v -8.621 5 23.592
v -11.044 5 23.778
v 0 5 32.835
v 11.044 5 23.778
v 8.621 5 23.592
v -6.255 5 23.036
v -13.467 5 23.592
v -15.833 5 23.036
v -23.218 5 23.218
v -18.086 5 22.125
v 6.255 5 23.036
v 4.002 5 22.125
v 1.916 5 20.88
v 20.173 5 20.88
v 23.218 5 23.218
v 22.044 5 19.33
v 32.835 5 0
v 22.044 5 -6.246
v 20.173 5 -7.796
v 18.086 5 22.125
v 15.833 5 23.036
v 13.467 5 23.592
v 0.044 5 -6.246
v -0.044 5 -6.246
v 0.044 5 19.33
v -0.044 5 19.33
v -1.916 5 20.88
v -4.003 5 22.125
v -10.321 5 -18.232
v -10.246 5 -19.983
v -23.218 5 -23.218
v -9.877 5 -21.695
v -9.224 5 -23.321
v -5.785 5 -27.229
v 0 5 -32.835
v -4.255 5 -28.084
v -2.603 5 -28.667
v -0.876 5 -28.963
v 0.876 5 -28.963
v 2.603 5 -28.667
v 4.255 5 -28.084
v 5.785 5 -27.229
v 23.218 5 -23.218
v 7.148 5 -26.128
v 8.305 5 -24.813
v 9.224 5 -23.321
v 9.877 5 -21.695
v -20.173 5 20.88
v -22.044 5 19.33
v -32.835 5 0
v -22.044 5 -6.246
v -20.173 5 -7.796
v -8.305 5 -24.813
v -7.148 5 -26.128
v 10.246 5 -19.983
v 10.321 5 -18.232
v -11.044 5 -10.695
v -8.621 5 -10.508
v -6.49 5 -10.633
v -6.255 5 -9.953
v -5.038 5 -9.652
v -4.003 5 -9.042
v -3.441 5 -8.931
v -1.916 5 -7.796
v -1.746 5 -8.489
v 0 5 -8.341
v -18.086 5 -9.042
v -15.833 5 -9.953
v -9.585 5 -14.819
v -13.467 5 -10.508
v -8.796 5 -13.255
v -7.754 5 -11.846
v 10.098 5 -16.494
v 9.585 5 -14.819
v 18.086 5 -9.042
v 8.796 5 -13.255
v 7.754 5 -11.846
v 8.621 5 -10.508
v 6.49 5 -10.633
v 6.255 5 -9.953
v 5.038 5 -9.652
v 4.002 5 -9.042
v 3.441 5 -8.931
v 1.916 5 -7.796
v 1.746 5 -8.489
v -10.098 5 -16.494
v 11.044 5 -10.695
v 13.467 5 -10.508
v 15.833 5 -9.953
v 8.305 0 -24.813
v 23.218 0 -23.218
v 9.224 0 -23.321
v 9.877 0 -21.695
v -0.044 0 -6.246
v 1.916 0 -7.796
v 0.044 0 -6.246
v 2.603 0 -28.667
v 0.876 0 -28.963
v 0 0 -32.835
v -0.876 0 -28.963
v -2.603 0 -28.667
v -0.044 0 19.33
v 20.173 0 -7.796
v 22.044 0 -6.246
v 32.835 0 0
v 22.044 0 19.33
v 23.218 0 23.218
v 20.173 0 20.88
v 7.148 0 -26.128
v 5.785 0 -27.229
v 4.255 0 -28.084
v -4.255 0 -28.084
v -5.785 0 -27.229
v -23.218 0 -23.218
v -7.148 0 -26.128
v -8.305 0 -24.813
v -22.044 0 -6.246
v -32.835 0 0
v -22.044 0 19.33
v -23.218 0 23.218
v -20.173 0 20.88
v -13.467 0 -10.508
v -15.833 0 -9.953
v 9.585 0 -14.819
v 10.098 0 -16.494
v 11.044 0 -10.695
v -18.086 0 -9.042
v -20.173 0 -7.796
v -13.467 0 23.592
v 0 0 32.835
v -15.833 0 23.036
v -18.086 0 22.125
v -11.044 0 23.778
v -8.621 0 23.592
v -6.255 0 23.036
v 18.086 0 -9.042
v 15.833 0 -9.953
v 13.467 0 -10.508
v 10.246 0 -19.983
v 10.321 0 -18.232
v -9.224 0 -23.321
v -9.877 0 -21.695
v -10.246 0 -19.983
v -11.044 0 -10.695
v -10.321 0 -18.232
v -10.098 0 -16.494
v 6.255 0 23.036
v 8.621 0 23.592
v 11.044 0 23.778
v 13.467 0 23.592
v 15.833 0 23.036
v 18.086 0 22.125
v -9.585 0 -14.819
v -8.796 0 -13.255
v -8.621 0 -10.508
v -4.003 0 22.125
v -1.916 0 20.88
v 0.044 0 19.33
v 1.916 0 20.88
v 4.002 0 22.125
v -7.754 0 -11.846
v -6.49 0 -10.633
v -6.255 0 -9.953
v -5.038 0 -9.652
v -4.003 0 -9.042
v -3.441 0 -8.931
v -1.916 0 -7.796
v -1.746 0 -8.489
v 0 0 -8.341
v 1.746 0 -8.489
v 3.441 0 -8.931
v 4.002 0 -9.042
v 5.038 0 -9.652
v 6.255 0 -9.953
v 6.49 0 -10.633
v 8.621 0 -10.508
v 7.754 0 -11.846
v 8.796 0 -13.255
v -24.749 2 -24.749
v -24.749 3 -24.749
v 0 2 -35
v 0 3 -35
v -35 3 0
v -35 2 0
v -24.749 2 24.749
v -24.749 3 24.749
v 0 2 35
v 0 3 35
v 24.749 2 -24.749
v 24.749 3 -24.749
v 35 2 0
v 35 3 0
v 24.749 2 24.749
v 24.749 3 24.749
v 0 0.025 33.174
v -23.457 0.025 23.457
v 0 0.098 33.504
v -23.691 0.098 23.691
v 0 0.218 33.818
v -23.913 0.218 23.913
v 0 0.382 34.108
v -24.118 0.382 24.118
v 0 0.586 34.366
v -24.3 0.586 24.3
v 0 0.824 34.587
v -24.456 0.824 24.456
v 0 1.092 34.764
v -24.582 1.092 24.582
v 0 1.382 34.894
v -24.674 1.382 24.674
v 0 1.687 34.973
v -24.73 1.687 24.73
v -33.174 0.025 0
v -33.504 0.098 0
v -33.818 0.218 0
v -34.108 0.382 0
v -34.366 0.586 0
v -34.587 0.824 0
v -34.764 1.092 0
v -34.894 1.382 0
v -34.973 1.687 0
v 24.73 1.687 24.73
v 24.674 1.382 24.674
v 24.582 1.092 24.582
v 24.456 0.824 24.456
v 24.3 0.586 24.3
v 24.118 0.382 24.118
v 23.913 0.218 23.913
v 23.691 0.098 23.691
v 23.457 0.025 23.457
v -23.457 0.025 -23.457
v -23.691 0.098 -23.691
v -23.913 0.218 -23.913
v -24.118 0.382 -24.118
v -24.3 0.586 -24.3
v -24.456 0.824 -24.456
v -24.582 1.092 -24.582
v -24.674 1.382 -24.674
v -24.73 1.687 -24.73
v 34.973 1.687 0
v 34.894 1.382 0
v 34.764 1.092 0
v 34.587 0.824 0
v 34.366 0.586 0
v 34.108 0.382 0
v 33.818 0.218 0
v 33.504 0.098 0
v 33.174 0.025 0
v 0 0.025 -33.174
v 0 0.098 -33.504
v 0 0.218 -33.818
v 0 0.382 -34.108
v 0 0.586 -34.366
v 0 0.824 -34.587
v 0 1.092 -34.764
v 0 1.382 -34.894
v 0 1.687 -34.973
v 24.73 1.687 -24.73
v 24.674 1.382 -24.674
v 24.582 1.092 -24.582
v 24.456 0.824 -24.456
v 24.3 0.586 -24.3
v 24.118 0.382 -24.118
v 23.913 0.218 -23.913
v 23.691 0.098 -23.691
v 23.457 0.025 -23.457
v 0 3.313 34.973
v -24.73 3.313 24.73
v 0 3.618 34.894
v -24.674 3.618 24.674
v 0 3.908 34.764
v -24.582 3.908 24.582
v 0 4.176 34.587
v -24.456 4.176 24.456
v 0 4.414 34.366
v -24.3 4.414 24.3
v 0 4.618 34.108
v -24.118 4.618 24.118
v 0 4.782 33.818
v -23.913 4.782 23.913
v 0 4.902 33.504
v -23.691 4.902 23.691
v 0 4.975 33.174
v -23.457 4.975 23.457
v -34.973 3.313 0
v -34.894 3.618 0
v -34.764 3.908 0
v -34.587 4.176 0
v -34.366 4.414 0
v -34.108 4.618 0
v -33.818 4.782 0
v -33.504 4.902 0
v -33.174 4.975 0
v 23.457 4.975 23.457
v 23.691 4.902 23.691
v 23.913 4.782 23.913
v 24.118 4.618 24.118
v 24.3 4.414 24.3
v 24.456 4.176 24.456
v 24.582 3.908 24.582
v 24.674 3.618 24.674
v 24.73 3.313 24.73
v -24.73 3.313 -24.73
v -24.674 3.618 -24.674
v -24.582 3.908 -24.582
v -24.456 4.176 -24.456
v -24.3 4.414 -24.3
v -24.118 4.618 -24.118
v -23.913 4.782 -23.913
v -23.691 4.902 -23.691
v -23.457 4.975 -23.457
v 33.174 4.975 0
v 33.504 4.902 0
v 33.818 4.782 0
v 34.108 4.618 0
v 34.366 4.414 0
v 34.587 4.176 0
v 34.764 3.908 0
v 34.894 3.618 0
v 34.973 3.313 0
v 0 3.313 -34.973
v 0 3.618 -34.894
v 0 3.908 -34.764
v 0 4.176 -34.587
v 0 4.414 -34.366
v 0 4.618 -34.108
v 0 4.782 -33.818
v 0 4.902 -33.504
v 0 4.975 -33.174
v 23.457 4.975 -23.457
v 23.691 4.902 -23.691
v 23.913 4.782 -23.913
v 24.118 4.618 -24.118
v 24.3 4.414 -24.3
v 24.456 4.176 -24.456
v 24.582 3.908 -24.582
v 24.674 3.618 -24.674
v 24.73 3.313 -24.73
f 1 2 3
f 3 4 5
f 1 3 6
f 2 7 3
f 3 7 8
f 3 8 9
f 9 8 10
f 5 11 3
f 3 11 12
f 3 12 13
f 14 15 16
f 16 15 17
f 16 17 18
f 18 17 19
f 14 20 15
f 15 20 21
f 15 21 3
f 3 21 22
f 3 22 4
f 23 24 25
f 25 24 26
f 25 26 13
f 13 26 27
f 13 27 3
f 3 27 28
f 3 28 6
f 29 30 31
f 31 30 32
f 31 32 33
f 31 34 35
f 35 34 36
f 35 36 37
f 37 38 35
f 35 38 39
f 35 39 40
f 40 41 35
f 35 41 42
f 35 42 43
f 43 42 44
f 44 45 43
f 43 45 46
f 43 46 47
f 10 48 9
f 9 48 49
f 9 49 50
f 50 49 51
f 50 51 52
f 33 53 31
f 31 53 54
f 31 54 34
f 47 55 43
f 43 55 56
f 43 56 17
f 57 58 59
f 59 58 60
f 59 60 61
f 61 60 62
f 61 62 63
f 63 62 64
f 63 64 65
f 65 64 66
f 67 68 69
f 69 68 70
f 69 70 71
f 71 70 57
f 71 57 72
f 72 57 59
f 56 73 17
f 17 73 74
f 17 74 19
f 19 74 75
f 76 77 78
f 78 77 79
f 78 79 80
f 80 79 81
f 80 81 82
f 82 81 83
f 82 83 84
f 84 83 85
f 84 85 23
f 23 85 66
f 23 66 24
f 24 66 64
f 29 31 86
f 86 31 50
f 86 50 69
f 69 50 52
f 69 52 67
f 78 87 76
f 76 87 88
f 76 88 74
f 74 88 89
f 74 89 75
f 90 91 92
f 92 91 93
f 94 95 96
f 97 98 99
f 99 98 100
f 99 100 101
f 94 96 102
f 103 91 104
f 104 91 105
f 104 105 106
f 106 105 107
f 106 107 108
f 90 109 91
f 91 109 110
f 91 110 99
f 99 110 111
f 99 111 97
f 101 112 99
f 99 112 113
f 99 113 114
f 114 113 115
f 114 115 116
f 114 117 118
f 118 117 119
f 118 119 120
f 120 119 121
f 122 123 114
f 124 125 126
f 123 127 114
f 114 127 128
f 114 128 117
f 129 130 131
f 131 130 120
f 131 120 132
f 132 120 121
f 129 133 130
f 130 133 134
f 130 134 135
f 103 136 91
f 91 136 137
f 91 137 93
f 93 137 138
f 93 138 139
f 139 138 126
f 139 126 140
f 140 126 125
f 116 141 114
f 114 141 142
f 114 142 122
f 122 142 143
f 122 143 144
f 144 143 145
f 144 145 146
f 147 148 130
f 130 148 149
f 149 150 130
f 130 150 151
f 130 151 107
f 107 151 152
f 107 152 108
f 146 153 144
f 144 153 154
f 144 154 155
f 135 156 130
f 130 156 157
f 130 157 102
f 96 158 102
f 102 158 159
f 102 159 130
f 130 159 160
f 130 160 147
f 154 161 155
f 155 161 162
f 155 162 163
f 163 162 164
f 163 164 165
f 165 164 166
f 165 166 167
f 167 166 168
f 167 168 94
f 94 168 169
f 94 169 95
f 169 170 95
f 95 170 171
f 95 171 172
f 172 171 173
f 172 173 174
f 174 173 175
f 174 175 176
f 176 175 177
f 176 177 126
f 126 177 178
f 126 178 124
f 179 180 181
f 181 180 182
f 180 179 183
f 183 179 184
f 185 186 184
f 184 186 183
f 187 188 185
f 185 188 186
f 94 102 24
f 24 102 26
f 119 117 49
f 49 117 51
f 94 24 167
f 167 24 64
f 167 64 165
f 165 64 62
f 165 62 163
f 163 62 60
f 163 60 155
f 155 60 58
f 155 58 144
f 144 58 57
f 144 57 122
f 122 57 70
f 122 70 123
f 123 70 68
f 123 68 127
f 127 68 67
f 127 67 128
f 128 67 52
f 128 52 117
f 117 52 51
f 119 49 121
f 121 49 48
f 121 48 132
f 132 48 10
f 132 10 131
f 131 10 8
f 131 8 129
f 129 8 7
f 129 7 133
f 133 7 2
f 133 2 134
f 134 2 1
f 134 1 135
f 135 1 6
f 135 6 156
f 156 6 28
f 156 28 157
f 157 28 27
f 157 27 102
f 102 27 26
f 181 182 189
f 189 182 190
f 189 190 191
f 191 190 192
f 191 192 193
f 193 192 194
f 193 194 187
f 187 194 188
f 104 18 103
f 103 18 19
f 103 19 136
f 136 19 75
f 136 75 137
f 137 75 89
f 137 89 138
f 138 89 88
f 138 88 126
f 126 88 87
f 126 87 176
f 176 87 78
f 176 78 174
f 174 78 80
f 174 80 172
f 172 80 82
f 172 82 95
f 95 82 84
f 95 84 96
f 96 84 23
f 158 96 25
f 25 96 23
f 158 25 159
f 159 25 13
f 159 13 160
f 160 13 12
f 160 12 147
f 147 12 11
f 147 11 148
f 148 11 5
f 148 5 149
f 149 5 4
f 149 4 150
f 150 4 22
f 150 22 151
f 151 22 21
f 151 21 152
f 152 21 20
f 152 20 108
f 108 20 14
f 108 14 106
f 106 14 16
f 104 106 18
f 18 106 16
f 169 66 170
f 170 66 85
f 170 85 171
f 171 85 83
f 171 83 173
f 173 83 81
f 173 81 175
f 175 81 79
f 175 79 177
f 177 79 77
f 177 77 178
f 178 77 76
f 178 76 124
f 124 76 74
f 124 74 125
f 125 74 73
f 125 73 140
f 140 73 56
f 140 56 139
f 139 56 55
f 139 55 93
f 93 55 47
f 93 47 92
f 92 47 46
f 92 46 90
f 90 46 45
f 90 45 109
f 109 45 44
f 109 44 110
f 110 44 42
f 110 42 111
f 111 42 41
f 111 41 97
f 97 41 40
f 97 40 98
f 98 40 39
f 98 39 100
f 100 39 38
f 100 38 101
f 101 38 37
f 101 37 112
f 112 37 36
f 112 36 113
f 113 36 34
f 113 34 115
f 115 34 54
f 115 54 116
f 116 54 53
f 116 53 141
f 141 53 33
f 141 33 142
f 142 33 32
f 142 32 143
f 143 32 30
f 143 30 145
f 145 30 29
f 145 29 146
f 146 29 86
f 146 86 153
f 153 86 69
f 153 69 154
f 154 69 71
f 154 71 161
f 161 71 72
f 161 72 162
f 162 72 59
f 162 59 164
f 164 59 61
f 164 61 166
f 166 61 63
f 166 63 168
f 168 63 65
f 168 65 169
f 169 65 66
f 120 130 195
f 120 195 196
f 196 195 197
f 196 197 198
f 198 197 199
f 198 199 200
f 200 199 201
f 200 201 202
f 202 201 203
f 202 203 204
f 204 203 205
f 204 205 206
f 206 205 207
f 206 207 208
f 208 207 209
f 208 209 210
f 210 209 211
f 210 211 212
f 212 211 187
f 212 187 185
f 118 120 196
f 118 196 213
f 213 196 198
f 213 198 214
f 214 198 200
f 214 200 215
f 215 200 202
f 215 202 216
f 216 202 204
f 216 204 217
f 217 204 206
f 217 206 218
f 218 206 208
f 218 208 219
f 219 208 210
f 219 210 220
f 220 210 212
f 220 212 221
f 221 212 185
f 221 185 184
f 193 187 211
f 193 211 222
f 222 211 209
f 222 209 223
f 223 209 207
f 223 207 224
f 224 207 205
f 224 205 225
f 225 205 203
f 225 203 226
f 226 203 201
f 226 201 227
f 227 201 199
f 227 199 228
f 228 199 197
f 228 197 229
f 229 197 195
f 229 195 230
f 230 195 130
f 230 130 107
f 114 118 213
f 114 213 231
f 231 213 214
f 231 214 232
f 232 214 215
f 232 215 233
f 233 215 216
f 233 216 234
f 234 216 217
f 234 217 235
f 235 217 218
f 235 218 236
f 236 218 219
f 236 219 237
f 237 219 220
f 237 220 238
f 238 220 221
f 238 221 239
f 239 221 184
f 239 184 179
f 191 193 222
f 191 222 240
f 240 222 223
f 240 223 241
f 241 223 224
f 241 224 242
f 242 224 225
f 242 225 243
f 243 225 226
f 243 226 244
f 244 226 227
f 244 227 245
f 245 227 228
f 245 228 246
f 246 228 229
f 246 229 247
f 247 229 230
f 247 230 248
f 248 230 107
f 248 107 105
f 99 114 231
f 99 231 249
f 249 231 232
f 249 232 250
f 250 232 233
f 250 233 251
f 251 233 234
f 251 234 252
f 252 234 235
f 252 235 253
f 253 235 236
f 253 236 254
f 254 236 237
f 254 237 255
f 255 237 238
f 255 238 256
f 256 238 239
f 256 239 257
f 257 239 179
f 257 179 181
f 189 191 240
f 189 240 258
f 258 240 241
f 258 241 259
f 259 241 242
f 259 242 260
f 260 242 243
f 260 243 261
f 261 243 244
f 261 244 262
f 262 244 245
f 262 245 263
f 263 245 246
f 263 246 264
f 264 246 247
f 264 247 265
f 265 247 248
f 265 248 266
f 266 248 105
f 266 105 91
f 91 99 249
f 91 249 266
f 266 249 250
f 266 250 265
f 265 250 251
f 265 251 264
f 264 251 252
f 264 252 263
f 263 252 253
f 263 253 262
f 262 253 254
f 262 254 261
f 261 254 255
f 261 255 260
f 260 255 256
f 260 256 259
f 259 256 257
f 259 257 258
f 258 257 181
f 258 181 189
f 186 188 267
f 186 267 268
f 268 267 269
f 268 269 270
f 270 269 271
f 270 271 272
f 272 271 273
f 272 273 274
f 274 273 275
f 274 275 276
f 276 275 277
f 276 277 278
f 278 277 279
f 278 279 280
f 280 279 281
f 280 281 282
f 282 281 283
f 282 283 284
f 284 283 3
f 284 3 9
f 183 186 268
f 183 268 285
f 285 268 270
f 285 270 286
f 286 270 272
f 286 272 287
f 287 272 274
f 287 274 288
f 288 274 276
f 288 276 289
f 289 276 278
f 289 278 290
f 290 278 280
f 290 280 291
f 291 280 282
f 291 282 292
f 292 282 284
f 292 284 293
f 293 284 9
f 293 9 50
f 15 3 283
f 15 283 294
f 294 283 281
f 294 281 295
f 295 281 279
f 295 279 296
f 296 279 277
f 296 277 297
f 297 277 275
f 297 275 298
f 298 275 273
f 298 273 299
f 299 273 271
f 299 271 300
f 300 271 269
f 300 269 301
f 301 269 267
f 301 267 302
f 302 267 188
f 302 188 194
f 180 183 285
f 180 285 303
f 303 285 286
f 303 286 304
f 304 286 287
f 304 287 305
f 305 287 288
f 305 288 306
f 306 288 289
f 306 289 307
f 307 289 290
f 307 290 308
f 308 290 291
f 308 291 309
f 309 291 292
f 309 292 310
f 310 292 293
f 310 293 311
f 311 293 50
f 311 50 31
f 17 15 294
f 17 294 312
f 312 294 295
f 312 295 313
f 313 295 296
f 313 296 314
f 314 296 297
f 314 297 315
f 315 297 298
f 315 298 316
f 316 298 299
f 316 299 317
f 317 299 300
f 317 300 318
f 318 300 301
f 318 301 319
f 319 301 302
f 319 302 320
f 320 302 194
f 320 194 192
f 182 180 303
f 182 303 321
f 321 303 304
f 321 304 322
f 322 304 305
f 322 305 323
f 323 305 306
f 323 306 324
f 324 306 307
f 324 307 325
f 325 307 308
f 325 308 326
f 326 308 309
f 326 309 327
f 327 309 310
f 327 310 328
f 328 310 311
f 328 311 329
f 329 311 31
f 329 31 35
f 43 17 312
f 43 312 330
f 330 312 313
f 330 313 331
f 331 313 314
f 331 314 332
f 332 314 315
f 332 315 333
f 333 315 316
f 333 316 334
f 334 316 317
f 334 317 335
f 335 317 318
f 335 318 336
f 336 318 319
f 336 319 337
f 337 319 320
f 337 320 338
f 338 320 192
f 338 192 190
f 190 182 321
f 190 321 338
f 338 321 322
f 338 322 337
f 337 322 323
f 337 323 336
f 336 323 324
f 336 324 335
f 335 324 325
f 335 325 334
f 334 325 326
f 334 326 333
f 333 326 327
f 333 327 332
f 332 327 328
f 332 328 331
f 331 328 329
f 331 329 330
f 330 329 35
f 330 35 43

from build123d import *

# Parameters (mm, degrees)
BOSS_EXTRUDE1_DEPTH = 5
SKETCH4_W           = 22
SKETCH4_H           = 25.575781223
CUT_EXTRUDE1_DEPTH  = 5
CUT_EXTRUDE2_DEPTH  = 5
SKETCH10_W          = 47.253020793
SKETCH10_H          = 79.148030785
CUT_EXTRUDE3_DEPTH  = 5
MIRROR8_DEPTH       = 5
SKETCH11_R          = 10.33
CUT_EXTRUDE4_DEPTH  = 5
FILLET5_R           = 2


# Read off the part's stored shape, not the designer's step: Mirror8
with BuildPart() as part:
    # Sketch3 → Boss-Extrude1 (new body)
    with BuildSketch(Plane(origin=(0, 0, 0), x_dir=(1, 0, 0), z_dir=(0, 1, 0))):
        Polygon((35, 0), (24.748737342, 24.748737342), (0, 35), (-24.748737342, 24.748737342), (-35, 0), (-24.748737342, -24.748737342), (0, -35), (24.748737342, -24.748737342), align=None)
    extrude(amount=BOSS_EXTRUDE1_DEPTH)

    # Sketch4 → Cut-Extrude1 (cut)
    with BuildSketch(Plane(origin=(0, 5, 0), x_dir=(1, 0, 0), z_dir=(0, 1, 0))):
        with Locations((-11.044164743, -6.541737694)):
            Rectangle(SKETCH4_W, SKETCH4_H)
    extrude(amount=-CUT_EXTRUDE1_DEPTH, mode=Mode.SUBTRACT)

    # Sketch4<6> → Cut-Extrude2 (cut)
    with BuildSketch(Plane(origin=(0, 5, 0), x_dir=(1, 0, 0), z_dir=(0, 1, 0))):
        with BuildLine():
            ThreePointArc((-22.044164743, 6.246152918), (-11.044164743, 10.694704781), (-0.044164743, 6.246152918))
            Line((-0.044164743, 6.246152918), (-22.044164743, 6.246152918))
        make_face()
        with BuildLine():
            Line((-22.044164743, -19.329628305), (-0.044164743, -19.329628305))
            ThreePointArc((-0.044164743, -19.329628305), (-11.044164743, -23.778180168), (-22.044164743, -19.329628305))
        make_face()
    extrude(amount=-CUT_EXTRUDE2_DEPTH, mode=Mode.SUBTRACT)

    # Sketch10 → Cut-Extrude3 (cut)
    with BuildSketch(Plane(origin=(0, 5, 0), x_dir=(1, 0, 0), z_dir=(0, 1, 0))):
        with Locations((23.626510397, -1.493894903)):
            Rectangle(SKETCH10_W, SKETCH10_H)
    extrude(amount=-CUT_EXTRUDE3_DEPTH, mode=Mode.SUBTRACT)

    # Mirror8 outline → Mirror8 (add)
    with BuildSketch(Plane(origin=(0, 0, 0), x_dir=(1, 0, 0), z_dir=(0, 1, 0))):
        Polygon((24.748737342, 24.748737342), (0, 35), (0, -35), (24.748737342, -24.748737342), (35, 0), align=None)
        with BuildLine():
            ThreePointArc((0.044164743, 6.246152918), (11.044164743, 10.694704781), (22.044164743, 6.246152918))
            Line((22.044164743, 6.246152918), (22.044164743, -19.329628305))
            ThreePointArc((22.044164743, -19.329628305), (11.044164743, -23.778180168), (0.044164743, -19.329628305))
            Line((0.044164743, -19.329628305), (0.044164743, 6.246152918))
        make_face(mode=Mode.SUBTRACT)
    extrude(amount=MIRROR8_DEPTH)

    # Sketch11 → Cut-Extrude4 (cut)
    with BuildSketch(Plane(origin=(0, 5, 0), x_dir=(1, 0, 0), z_dir=(0, 1, 0))):
        with Locations(Location((0, 18.670604022, 0), (0, 0, 270))):
            Circle(SKETCH11_R)
    extrude(amount=-CUT_EXTRUDE4_DEPTH, mode=Mode.SUBTRACT)

    # Fillet5
    fillet5_edges = [part.edges().sort_by_distance(p)[0] for p in [
        (-12.374368671, 5, -29.874368671),
        (-29.874368671, 5, -12.374368671),
        (-29.874368671, 5, 12.374368671),
        (-12.374368671, 5, 29.874368671),
        (12.374368671, 5, -29.874368671),
        (29.874368671, 5, -12.374368671),
        (29.874368671, 5, 12.374368671),
        (12.374368671, 0, -29.874368671),
        (29.874368671, 0, -12.374368671),
        (29.874368671, 0, 12.374368671),
        (12.374368671, 0, 29.874368671),
        (12.374368671, 5, 29.874368671),
        (-12.374368671, 0, 29.874368671),
        (-29.874368671, 0, 12.374368671),
        (-29.874368671, 0, -12.374368671),
        (-12.374368671, 0, -29.874368671),
    ]]
    fillet(fillet5_edges, radius=FILLET5_R)


solid = part.part
